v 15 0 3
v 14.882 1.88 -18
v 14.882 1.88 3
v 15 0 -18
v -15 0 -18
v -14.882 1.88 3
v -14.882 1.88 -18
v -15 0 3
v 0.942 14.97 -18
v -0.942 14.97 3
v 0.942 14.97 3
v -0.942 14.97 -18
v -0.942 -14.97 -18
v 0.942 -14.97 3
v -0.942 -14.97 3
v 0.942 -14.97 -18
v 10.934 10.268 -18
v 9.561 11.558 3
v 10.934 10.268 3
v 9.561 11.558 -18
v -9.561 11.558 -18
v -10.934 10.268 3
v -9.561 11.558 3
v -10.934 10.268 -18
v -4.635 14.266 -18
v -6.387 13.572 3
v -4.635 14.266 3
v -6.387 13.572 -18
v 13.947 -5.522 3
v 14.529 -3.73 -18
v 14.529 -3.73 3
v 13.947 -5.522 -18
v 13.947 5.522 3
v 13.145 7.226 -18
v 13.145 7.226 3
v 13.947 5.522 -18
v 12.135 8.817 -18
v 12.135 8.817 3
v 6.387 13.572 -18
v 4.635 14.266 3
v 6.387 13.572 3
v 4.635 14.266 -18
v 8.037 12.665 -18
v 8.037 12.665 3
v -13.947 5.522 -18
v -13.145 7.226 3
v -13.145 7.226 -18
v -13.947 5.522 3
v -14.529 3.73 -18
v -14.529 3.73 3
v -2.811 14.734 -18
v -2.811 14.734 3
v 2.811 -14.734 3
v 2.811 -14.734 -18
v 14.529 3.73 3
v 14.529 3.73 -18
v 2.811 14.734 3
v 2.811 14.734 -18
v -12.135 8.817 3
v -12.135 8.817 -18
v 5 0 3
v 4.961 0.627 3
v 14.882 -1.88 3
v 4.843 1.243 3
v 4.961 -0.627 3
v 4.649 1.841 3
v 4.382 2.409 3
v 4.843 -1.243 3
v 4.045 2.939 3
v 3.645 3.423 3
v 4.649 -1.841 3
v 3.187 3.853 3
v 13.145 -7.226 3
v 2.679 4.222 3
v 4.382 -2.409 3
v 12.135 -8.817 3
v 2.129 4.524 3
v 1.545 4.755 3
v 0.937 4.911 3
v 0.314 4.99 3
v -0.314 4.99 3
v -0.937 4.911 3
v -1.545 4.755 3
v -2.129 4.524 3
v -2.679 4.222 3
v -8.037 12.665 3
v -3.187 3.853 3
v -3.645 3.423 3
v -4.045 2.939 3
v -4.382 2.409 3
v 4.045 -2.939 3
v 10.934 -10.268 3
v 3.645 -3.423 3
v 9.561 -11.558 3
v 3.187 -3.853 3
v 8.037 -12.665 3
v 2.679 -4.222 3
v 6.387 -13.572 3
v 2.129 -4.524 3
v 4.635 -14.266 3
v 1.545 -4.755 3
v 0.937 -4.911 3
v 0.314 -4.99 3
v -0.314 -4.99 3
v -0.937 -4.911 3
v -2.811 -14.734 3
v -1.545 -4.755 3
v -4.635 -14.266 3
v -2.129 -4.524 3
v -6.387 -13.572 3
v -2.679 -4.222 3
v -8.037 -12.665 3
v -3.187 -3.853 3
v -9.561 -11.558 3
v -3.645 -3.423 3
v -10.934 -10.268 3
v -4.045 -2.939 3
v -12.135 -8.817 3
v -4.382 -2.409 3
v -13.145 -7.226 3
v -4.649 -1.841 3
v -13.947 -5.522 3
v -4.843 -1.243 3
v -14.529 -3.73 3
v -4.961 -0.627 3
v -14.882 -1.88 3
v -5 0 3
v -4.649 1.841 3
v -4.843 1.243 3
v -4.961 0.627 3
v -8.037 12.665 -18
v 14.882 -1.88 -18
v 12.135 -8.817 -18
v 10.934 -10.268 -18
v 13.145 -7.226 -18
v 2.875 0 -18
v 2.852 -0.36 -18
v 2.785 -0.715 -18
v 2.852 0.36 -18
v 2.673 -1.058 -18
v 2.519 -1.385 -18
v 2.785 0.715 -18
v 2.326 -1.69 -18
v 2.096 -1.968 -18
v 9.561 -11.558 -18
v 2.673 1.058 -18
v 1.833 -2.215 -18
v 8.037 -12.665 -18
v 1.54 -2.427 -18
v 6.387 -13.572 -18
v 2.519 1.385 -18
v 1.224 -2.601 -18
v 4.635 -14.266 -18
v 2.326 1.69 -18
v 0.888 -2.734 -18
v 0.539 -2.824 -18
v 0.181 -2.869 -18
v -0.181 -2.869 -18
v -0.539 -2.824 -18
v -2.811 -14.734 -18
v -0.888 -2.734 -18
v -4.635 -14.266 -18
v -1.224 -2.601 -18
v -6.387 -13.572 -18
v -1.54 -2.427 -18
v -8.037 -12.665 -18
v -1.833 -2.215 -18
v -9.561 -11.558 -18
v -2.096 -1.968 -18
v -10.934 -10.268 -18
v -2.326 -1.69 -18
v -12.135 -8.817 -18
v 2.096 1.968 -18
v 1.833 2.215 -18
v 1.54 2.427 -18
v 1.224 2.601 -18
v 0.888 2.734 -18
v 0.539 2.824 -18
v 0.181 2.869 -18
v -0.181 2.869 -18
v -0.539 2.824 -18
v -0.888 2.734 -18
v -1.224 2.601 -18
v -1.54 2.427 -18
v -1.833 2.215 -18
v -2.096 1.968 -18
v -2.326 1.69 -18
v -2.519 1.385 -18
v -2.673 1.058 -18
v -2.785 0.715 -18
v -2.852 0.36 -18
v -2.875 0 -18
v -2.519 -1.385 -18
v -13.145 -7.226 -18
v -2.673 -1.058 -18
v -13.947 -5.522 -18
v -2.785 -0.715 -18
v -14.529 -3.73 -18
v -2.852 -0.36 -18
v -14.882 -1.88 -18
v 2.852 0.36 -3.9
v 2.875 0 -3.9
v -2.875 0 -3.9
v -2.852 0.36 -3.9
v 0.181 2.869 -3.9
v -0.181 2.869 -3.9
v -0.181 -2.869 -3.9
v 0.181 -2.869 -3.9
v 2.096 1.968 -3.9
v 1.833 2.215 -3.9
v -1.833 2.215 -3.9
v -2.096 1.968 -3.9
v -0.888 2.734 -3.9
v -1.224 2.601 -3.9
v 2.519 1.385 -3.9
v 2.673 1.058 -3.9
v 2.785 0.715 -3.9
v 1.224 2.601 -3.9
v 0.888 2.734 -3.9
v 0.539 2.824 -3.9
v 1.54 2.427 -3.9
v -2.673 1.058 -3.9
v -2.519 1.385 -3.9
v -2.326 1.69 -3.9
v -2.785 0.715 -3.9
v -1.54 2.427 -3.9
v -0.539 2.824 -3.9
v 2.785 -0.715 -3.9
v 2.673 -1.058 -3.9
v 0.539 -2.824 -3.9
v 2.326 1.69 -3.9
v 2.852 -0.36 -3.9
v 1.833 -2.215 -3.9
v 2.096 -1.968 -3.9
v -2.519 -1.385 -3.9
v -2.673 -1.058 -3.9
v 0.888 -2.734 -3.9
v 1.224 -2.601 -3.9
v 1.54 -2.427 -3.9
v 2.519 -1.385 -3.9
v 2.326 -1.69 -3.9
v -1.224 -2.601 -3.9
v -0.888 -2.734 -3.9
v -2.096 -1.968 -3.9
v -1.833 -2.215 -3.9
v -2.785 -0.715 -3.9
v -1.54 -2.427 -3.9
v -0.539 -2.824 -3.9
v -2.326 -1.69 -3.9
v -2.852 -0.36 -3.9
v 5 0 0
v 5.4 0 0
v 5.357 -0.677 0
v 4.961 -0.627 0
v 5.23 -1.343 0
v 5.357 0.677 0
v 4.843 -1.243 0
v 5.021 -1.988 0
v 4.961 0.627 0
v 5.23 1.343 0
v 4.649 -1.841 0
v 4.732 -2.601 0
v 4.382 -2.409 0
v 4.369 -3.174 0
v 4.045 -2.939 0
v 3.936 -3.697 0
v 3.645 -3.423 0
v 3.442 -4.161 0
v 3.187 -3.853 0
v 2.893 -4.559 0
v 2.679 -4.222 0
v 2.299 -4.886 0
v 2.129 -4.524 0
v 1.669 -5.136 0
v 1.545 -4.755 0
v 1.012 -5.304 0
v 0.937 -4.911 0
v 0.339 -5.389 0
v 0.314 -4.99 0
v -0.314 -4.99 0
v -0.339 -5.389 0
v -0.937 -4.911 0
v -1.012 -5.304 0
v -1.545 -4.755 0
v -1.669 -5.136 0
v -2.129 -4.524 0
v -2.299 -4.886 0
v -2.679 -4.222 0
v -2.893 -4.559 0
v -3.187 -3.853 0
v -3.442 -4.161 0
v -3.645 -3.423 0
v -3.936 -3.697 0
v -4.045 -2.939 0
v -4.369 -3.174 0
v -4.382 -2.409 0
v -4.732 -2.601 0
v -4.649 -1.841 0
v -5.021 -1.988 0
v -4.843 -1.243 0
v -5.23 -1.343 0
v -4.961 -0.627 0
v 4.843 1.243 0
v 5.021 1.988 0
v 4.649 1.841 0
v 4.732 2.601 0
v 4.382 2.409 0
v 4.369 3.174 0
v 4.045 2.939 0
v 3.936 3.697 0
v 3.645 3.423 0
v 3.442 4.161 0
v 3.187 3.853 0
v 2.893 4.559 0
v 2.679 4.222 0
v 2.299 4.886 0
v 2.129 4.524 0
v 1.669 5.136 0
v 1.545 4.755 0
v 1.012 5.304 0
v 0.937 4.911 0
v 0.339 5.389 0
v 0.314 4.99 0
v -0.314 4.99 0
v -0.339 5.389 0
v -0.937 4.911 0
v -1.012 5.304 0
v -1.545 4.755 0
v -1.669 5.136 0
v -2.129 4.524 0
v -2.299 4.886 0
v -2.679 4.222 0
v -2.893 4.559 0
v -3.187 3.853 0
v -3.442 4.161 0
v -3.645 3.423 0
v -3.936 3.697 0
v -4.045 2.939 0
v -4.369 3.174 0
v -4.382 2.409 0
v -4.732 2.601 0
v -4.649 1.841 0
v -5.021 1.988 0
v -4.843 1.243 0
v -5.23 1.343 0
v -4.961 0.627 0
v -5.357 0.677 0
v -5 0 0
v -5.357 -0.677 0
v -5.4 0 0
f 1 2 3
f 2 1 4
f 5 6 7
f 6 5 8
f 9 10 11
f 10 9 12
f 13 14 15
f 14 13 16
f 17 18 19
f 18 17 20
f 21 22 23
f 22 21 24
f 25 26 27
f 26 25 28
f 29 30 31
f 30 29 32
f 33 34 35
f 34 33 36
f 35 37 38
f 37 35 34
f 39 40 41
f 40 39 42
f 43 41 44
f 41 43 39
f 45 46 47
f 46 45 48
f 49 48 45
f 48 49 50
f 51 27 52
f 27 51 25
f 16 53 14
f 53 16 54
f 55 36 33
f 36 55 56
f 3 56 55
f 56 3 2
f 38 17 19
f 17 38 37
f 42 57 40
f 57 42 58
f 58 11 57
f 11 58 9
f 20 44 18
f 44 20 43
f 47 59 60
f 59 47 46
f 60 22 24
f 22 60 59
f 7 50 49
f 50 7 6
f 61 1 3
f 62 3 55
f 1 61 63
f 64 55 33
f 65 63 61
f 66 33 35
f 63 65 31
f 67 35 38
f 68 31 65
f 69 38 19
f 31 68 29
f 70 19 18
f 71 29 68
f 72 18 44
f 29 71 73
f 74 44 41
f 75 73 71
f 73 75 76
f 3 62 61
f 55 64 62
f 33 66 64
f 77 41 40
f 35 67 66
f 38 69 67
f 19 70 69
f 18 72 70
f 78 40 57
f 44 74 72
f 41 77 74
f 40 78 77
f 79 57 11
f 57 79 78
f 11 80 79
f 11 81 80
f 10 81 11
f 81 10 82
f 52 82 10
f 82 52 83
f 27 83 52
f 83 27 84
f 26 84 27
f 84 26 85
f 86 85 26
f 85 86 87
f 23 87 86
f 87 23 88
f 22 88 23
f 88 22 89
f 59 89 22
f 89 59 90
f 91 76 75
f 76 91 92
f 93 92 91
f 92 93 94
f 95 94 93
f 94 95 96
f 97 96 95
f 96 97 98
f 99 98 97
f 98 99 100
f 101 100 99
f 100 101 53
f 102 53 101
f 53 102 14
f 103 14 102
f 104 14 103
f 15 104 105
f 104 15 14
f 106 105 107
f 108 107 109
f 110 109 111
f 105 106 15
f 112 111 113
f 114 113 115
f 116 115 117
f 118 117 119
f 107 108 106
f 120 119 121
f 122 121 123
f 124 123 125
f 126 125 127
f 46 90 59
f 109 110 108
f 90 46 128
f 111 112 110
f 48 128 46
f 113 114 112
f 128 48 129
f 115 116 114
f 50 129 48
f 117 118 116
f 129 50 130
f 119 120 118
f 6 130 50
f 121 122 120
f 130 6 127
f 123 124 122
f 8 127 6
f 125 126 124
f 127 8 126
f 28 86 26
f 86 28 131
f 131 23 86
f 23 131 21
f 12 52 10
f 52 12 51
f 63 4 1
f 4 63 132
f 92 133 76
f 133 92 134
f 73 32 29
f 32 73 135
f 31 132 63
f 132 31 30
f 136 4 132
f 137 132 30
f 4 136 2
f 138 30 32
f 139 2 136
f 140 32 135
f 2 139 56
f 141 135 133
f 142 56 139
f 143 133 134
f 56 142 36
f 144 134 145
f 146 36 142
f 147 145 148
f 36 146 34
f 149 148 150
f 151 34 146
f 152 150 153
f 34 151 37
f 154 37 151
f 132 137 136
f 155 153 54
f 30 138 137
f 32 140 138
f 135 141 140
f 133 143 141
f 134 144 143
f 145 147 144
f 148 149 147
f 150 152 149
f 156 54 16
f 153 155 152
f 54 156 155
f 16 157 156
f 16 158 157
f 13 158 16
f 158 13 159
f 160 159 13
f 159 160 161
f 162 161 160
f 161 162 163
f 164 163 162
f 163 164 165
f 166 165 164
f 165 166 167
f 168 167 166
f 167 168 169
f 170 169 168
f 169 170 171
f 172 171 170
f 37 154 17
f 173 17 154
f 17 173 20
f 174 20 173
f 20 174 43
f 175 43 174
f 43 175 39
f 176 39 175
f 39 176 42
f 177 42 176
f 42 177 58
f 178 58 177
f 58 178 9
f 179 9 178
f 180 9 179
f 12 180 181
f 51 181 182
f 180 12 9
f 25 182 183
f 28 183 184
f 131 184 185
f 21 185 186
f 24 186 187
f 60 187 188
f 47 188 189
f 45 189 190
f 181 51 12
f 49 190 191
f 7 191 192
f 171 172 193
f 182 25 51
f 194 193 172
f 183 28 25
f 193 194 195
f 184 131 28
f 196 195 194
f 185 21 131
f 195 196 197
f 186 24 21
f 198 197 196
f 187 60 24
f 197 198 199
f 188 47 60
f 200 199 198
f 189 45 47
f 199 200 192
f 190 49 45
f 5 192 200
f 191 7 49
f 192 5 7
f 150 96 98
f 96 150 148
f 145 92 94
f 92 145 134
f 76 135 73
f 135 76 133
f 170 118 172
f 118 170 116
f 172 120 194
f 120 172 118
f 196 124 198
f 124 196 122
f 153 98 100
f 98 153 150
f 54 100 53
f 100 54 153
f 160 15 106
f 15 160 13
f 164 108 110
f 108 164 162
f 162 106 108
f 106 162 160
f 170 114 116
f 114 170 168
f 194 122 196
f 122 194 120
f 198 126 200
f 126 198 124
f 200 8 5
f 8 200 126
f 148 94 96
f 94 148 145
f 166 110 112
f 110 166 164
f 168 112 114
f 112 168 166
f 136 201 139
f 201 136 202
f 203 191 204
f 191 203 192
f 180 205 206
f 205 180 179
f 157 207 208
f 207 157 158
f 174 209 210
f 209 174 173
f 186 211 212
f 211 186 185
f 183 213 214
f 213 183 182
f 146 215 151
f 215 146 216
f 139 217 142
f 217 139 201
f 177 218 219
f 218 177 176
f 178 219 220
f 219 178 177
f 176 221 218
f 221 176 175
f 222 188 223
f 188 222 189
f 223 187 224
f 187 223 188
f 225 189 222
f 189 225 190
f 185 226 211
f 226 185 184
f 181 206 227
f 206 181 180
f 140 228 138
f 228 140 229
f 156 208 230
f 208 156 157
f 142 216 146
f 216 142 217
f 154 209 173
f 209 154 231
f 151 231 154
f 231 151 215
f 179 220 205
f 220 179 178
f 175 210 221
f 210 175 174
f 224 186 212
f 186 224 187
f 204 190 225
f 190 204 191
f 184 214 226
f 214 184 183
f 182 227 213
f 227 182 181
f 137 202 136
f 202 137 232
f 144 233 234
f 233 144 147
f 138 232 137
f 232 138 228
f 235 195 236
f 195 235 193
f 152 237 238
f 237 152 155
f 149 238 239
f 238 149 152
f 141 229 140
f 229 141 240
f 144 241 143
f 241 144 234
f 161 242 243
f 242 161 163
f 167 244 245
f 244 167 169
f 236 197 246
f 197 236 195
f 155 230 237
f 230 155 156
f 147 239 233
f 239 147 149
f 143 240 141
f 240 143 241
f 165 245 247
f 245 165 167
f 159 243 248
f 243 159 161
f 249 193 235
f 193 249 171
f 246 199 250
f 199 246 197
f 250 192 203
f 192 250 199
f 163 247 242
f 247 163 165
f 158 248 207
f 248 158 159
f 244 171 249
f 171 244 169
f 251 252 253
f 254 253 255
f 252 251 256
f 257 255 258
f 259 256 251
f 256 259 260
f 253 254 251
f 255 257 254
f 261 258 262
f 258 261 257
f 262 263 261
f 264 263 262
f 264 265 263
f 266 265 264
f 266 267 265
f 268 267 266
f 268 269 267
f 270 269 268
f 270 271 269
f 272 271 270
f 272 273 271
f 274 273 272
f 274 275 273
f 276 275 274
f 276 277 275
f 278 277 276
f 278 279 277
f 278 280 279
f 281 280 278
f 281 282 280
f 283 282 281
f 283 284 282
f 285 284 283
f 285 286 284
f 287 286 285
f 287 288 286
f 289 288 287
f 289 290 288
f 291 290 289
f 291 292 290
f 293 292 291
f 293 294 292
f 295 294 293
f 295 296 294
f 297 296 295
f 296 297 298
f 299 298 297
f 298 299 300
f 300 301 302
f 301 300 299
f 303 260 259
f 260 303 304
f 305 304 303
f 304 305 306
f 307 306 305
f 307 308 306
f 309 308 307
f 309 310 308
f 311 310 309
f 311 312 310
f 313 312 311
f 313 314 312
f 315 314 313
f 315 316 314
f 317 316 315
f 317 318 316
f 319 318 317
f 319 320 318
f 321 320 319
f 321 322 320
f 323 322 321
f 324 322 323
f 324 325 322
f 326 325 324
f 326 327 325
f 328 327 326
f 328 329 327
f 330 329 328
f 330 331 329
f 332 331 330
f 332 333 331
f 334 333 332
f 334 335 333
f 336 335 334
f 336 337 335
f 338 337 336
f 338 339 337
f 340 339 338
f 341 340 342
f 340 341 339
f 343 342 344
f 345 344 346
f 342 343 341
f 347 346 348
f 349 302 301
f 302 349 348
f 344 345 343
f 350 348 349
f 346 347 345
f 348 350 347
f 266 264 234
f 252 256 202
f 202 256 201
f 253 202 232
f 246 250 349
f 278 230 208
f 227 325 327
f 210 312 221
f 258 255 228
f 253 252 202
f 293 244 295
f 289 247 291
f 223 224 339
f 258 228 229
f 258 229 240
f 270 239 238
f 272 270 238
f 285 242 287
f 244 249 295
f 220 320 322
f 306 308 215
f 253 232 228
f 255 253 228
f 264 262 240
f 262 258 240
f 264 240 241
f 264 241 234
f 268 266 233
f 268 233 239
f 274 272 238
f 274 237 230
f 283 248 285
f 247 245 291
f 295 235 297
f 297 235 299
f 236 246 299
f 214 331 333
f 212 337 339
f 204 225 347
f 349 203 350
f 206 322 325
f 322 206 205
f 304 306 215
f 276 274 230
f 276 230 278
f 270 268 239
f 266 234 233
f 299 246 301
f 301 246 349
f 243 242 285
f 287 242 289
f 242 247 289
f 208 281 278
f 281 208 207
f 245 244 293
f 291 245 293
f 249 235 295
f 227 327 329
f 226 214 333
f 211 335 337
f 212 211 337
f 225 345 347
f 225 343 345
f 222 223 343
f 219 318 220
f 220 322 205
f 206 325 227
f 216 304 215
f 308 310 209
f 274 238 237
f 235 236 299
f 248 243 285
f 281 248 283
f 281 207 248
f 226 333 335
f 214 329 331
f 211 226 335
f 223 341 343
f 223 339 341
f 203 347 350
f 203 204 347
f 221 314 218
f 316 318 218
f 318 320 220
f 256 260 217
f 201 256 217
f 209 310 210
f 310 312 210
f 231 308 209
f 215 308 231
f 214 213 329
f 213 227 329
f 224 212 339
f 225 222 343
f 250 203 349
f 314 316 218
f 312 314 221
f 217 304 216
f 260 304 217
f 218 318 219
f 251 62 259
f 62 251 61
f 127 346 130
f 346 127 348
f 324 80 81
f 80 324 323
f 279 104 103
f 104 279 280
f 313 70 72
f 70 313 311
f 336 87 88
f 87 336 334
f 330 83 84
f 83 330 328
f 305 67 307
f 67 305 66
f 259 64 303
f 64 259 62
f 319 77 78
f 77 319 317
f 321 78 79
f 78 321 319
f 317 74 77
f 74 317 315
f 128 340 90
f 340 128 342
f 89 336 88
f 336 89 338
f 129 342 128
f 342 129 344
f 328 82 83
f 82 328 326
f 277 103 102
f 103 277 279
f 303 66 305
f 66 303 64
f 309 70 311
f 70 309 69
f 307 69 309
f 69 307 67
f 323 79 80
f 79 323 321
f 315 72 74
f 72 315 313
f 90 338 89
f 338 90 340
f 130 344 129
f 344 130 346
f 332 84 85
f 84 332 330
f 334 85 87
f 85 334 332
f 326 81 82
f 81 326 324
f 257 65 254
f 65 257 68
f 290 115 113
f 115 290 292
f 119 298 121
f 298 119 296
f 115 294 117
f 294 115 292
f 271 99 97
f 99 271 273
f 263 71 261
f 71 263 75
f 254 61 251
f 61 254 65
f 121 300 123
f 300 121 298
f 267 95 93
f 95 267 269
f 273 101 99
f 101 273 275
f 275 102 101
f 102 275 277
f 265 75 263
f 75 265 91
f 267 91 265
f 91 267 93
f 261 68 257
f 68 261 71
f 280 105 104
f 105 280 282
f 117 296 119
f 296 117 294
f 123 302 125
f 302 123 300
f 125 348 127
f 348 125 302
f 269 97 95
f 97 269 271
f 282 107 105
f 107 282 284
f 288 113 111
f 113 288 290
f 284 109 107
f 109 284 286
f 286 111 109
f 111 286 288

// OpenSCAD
$fn = 50;

difference() {
	union() {
		translate(v = [0, 0, -18.0]) {
			cylinder(h = 21, r = 15.0);
		}
		#translate(v = [0, 0, -21.0]) {
			cylinder(h = 21, r = 2.875);
		}
	}
	union() {
		translate(v = [0, 0, 0]) {
			rotate(a = [0, 0, 0]) {
				difference() {
					union() {
						translate(v = [0, 0, -21.0]) {
							cylinder(h = 21, r = 2.6);
						}
						translate(v = [0, 0, -3.9]) {
							cylinder(h = 3.9, r1 = 2.875, r2 = 5.4);
						}
						translate(v = [0, 0, -21.0]) {
							cylinder(h = 21, r = 2.875);
						}
						translate(v = [0, 0, -21.0]) {
							cylinder(h = 21, r = 2.6);
						}
					}
					union();
				}
			}
		}
		#cylinder(h = 3, r = 5.0);
	}
}
